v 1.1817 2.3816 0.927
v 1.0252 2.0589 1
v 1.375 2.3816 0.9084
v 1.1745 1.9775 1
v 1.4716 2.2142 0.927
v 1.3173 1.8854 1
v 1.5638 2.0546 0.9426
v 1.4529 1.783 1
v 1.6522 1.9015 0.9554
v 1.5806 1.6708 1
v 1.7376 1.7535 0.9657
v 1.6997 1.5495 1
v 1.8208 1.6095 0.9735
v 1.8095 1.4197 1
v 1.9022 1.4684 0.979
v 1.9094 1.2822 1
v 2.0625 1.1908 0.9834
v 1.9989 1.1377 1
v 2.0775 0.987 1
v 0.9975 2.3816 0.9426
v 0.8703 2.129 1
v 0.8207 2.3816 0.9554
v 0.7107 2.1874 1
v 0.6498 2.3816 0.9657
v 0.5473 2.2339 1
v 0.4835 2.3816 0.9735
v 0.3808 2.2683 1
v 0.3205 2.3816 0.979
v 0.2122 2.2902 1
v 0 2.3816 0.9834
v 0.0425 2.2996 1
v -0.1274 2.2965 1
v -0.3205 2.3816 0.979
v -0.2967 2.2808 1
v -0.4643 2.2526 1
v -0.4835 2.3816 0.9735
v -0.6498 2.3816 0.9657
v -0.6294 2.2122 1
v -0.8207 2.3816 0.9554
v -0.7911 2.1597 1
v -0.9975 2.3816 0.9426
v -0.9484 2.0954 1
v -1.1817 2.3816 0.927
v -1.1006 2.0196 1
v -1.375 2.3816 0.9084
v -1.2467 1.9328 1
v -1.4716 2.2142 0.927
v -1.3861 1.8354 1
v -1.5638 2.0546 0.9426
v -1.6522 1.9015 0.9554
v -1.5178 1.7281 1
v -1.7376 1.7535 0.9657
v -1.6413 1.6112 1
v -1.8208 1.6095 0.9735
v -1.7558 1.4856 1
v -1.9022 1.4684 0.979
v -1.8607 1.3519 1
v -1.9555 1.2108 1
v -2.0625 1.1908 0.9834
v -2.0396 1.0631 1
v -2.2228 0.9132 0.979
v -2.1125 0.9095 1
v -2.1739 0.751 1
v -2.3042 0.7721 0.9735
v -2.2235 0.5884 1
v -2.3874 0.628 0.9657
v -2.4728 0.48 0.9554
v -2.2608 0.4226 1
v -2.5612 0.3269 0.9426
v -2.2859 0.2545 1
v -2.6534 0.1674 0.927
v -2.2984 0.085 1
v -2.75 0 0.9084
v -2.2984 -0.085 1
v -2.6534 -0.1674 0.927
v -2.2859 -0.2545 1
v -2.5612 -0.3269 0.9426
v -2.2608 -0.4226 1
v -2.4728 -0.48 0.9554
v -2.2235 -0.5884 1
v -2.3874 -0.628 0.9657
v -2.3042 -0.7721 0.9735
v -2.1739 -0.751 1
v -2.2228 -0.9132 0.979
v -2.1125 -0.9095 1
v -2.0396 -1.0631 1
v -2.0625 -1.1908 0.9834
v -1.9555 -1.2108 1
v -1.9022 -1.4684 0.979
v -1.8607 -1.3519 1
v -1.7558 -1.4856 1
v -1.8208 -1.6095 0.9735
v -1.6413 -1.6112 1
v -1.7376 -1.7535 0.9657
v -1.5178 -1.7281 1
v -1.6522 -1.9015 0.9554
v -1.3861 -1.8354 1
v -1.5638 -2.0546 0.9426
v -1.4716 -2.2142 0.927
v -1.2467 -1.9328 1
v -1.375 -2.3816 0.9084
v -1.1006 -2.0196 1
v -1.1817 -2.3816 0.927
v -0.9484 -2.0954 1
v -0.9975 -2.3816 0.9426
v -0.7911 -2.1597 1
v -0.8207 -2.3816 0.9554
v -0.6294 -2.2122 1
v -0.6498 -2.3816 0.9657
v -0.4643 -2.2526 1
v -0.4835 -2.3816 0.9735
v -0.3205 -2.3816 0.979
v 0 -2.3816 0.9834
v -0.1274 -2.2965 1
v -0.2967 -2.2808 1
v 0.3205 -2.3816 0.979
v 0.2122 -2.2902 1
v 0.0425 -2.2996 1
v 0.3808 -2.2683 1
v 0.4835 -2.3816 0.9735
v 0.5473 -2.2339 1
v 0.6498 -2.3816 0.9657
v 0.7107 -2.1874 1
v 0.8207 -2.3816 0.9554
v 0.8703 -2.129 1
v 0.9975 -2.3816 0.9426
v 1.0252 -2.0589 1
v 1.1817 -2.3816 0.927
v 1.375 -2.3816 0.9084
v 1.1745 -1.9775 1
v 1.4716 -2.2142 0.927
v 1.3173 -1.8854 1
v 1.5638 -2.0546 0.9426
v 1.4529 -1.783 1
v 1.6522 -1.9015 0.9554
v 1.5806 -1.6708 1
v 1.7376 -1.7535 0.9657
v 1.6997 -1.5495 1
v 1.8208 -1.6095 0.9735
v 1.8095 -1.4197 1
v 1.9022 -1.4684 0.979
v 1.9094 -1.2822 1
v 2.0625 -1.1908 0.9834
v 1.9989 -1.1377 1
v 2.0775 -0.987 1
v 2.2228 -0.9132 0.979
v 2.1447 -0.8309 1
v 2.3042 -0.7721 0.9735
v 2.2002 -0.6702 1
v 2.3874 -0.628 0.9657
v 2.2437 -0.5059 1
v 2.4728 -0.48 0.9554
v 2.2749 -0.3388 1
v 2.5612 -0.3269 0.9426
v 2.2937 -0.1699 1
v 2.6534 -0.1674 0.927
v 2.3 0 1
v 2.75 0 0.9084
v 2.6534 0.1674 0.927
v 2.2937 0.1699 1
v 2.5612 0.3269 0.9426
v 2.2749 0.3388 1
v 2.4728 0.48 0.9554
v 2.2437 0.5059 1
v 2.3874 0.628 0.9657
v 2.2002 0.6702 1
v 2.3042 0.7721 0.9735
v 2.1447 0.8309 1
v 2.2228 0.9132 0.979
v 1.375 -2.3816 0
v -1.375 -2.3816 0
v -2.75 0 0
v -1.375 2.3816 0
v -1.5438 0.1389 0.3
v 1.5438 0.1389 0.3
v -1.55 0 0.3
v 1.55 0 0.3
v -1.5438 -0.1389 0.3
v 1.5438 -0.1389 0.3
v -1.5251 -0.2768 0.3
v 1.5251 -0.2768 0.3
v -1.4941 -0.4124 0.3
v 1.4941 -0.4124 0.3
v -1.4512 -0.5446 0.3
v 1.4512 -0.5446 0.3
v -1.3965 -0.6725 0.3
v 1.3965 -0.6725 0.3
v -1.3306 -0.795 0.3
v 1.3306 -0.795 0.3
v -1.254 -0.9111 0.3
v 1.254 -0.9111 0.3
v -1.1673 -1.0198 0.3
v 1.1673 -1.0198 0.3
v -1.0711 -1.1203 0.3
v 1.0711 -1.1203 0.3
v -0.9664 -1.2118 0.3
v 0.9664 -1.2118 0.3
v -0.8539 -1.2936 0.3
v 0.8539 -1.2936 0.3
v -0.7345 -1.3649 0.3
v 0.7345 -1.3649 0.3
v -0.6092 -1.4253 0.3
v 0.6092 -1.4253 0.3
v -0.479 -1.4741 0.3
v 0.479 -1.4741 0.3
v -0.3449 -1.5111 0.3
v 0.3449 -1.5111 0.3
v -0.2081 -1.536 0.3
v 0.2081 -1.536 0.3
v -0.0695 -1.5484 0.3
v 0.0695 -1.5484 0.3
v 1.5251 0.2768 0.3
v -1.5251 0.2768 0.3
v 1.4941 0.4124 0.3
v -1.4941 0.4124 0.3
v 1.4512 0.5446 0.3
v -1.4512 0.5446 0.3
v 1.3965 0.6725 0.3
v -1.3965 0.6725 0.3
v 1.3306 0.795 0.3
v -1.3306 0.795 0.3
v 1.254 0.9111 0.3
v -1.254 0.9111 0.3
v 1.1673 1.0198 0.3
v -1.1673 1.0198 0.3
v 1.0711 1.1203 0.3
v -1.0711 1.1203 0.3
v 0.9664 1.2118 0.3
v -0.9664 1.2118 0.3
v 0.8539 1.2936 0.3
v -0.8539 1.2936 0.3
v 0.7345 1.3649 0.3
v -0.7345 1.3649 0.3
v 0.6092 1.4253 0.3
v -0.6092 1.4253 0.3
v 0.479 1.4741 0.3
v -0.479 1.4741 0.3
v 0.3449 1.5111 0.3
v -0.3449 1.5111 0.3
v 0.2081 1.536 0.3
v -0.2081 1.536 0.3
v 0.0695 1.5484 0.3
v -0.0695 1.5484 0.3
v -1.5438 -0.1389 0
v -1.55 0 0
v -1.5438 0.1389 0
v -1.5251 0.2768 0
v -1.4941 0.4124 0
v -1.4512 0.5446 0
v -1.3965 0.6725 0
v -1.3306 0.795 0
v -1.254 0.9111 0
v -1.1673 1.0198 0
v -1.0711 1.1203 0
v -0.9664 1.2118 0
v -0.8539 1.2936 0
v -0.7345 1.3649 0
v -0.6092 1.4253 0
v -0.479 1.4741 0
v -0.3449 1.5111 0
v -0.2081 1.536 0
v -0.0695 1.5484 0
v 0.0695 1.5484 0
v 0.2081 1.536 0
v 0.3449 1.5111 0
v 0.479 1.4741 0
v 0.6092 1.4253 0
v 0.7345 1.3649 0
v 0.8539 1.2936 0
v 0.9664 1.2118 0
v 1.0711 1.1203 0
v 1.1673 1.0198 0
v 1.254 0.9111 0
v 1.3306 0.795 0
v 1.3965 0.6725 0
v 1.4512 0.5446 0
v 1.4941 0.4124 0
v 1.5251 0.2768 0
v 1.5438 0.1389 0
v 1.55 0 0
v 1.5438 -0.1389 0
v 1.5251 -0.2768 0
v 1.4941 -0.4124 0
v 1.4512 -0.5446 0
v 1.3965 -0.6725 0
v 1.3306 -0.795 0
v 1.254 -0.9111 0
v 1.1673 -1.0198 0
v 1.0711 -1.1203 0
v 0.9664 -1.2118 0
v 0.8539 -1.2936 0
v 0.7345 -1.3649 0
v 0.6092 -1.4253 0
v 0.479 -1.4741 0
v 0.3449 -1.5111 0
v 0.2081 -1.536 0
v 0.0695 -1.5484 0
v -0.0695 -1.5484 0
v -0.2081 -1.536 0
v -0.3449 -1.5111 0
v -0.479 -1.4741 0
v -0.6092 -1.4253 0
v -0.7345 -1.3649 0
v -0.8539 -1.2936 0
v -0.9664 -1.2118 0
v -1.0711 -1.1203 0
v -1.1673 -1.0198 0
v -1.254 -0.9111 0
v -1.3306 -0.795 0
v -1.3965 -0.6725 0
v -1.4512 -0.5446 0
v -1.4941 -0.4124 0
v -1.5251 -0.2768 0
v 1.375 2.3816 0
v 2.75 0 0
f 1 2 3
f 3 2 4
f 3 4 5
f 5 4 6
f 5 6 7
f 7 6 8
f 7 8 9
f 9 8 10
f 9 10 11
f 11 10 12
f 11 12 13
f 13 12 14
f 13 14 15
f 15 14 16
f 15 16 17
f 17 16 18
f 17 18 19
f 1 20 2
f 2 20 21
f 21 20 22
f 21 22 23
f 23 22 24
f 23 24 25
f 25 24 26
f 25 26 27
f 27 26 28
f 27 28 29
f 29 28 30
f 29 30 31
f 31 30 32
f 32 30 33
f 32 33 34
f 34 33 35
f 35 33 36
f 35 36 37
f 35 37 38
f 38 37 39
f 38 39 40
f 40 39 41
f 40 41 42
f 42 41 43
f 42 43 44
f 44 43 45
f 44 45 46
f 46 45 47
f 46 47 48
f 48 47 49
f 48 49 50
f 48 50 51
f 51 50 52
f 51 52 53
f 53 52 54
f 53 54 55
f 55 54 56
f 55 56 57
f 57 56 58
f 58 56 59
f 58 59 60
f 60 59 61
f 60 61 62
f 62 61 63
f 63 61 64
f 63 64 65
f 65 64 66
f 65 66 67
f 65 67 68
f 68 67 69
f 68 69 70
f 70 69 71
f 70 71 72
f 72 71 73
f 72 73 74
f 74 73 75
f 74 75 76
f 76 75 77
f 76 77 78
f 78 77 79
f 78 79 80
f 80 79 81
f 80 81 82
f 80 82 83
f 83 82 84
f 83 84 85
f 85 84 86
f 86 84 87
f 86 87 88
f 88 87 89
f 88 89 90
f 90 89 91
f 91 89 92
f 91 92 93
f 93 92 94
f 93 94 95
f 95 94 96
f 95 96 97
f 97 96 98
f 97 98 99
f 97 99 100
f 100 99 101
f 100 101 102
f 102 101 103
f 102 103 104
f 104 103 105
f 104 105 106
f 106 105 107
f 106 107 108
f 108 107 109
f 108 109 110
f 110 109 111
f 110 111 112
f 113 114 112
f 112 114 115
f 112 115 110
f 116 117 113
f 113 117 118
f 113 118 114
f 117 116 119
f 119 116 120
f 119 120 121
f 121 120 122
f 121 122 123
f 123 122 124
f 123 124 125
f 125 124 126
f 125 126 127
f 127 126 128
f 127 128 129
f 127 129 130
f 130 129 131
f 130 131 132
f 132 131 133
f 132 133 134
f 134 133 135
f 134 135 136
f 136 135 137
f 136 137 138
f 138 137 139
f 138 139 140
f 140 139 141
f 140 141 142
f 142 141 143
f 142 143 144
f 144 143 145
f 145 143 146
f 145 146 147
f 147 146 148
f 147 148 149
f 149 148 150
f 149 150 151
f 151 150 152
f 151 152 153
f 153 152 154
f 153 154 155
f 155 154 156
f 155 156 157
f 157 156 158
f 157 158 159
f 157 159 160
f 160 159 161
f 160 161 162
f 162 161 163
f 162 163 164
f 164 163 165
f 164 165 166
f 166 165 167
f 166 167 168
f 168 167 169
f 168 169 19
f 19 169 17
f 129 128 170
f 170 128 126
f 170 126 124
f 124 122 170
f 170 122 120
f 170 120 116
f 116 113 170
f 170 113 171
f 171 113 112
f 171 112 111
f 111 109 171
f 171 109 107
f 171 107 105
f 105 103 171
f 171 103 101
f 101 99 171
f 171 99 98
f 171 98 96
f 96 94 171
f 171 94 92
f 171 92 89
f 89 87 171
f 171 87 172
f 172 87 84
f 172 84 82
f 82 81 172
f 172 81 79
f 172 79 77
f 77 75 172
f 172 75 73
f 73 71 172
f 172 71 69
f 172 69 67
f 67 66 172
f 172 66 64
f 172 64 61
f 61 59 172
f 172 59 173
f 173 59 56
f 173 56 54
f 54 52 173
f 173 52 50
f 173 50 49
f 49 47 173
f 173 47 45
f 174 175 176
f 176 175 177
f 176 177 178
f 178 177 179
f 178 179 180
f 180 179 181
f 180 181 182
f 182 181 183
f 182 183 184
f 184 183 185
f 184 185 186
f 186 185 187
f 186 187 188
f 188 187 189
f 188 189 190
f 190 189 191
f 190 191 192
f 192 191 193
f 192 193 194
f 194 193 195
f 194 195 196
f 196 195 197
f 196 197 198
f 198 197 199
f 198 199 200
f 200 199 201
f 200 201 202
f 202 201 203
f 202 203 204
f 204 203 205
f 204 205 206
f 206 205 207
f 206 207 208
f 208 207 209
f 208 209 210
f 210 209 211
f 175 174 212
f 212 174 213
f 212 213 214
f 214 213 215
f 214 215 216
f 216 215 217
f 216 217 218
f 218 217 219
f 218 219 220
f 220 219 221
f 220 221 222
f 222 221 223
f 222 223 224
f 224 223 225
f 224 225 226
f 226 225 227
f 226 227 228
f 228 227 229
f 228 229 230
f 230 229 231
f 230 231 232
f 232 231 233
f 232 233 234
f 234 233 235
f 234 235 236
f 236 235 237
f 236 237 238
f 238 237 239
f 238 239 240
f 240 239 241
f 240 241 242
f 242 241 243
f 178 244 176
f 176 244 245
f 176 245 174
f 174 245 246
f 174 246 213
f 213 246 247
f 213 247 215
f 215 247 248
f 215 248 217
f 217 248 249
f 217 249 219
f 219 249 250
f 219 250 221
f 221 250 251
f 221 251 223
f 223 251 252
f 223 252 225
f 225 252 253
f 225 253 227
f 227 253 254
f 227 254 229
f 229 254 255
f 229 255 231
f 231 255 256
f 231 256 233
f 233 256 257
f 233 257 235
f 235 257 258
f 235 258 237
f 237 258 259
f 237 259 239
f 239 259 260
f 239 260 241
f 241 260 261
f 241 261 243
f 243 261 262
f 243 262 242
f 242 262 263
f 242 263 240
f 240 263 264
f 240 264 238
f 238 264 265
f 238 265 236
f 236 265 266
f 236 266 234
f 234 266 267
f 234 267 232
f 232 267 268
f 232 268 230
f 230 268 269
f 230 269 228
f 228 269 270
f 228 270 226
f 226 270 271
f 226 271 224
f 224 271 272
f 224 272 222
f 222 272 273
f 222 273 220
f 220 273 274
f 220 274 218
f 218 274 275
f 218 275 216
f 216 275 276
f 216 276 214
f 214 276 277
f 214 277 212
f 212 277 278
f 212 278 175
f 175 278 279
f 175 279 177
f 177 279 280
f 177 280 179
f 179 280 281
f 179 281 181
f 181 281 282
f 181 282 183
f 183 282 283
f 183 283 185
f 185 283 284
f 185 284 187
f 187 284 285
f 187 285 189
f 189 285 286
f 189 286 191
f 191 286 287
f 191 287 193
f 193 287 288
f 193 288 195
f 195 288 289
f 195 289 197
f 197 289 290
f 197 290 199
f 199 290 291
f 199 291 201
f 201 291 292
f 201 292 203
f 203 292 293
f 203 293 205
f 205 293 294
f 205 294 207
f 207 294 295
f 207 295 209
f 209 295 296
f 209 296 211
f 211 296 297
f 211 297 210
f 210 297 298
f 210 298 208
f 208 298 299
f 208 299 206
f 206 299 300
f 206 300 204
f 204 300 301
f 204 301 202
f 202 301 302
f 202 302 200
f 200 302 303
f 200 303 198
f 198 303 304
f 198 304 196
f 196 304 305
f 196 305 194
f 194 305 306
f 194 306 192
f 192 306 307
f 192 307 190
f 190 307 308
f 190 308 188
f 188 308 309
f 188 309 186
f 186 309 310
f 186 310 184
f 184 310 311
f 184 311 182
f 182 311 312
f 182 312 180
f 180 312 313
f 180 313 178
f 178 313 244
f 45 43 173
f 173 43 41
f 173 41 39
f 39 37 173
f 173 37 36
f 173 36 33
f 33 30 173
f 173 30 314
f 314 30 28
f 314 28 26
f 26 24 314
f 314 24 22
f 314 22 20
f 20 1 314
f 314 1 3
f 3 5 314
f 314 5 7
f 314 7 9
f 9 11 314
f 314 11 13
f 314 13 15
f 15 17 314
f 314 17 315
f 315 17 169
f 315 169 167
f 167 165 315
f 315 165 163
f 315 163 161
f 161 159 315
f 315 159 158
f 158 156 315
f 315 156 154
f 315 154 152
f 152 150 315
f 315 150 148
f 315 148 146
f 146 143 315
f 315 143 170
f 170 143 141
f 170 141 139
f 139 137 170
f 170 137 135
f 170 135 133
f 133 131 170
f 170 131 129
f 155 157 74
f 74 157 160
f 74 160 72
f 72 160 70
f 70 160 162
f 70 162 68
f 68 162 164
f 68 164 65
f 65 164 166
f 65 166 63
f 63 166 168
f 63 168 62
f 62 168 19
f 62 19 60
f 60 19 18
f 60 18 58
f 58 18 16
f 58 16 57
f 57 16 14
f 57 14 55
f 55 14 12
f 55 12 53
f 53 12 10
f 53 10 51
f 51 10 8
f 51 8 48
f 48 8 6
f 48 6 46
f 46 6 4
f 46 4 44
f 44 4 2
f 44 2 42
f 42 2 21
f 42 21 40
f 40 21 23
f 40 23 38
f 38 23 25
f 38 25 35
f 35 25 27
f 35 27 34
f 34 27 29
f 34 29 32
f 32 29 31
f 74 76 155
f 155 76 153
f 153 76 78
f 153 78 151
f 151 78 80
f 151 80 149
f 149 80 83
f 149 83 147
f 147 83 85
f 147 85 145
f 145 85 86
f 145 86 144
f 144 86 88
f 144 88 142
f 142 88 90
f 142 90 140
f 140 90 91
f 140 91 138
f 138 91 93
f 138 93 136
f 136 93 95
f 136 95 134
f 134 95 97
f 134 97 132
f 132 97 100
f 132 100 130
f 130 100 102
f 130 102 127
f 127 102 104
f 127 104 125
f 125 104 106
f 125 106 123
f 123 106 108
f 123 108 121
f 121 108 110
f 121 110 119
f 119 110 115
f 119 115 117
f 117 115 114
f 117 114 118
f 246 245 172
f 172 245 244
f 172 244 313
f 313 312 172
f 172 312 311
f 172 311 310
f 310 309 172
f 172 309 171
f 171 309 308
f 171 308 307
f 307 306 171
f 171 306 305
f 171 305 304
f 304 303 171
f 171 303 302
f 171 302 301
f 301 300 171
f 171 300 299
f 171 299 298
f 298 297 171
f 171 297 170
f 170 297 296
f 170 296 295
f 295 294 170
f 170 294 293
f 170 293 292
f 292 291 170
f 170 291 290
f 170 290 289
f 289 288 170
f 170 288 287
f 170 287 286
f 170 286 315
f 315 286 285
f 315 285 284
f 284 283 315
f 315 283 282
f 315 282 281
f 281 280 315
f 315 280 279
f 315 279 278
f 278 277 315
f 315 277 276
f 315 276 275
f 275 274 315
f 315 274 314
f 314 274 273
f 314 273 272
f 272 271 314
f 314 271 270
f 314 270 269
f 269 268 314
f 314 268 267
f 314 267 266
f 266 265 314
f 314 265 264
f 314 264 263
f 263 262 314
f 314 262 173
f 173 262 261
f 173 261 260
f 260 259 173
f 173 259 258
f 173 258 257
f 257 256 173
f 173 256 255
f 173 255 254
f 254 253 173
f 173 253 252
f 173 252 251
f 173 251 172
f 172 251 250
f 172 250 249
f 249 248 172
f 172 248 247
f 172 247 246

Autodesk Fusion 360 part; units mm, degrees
sketch "Sketch1" plane through (0, 0, 0) normal (0, 0, 1) x (1, 0, 0) in component "Component"
  circle A0 centre (0, 0) radius 1.55
  circle A1 centre (0, 0) radius 2.75
  line L0 (-2.75, 0) -> (-1.375, -2.3816)
  line L1 (-1.375, -2.3816) -> (1.375, -2.3816)
  line L2 (1.375, -2.3816) -> (2.75, 0)
  line L3 (2.75, 0) -> (1.375, 2.3816)
  line L4 (1.375, 2.3816) -> (-1.375, 2.3816)
  line L5 (-1.375, 2.3816) -> (-2.75, 0)
  dimension "d1" = 3.1
  dimension "d2" = 5.5
  dimension "d12" = 4.7631
extrude "Extrude1" add sketch "Sketch1" along normal blind 1 contours A0 | L0 L1 L2 L3 L4 L5 in component "Component"
extrude "Extrude2" cut sketch "Sketch1" along normal blind 0.5 contours A0 in component "Component"
extrude "Extrude3" add 1 faces at (0.8338, -0.7144, 0.5) along direction (0, 0, -1) blind 0.2 in component "Component"
sketch "Sketch2" plane through (0, 0, 0) normal (0, 1, 0) x (1, 0, 0) in component "Component"
  line L0 (2.3, -1) -> (3.2799, -0.8006)
  line L1 (2.3, -1) -> (3.2799, -1) construction
  line L2 (3.2799, -0.8006) -> (3.2799, -1)
  line L3 (2.3, -1) -> (3.3, -1)
  dimension "d9" = 11.5
  dimension "d10" = 1
revolve "Revolve1" cut sketch "Sketch2" angle 360 about axis through (0, 0, 1.75) along (0, 0, 1) in component "Component"
component "Component" placed x (1, 0, 0) y (0, 1, 0) z (0, 0, 1) at (0, 0, 0)
